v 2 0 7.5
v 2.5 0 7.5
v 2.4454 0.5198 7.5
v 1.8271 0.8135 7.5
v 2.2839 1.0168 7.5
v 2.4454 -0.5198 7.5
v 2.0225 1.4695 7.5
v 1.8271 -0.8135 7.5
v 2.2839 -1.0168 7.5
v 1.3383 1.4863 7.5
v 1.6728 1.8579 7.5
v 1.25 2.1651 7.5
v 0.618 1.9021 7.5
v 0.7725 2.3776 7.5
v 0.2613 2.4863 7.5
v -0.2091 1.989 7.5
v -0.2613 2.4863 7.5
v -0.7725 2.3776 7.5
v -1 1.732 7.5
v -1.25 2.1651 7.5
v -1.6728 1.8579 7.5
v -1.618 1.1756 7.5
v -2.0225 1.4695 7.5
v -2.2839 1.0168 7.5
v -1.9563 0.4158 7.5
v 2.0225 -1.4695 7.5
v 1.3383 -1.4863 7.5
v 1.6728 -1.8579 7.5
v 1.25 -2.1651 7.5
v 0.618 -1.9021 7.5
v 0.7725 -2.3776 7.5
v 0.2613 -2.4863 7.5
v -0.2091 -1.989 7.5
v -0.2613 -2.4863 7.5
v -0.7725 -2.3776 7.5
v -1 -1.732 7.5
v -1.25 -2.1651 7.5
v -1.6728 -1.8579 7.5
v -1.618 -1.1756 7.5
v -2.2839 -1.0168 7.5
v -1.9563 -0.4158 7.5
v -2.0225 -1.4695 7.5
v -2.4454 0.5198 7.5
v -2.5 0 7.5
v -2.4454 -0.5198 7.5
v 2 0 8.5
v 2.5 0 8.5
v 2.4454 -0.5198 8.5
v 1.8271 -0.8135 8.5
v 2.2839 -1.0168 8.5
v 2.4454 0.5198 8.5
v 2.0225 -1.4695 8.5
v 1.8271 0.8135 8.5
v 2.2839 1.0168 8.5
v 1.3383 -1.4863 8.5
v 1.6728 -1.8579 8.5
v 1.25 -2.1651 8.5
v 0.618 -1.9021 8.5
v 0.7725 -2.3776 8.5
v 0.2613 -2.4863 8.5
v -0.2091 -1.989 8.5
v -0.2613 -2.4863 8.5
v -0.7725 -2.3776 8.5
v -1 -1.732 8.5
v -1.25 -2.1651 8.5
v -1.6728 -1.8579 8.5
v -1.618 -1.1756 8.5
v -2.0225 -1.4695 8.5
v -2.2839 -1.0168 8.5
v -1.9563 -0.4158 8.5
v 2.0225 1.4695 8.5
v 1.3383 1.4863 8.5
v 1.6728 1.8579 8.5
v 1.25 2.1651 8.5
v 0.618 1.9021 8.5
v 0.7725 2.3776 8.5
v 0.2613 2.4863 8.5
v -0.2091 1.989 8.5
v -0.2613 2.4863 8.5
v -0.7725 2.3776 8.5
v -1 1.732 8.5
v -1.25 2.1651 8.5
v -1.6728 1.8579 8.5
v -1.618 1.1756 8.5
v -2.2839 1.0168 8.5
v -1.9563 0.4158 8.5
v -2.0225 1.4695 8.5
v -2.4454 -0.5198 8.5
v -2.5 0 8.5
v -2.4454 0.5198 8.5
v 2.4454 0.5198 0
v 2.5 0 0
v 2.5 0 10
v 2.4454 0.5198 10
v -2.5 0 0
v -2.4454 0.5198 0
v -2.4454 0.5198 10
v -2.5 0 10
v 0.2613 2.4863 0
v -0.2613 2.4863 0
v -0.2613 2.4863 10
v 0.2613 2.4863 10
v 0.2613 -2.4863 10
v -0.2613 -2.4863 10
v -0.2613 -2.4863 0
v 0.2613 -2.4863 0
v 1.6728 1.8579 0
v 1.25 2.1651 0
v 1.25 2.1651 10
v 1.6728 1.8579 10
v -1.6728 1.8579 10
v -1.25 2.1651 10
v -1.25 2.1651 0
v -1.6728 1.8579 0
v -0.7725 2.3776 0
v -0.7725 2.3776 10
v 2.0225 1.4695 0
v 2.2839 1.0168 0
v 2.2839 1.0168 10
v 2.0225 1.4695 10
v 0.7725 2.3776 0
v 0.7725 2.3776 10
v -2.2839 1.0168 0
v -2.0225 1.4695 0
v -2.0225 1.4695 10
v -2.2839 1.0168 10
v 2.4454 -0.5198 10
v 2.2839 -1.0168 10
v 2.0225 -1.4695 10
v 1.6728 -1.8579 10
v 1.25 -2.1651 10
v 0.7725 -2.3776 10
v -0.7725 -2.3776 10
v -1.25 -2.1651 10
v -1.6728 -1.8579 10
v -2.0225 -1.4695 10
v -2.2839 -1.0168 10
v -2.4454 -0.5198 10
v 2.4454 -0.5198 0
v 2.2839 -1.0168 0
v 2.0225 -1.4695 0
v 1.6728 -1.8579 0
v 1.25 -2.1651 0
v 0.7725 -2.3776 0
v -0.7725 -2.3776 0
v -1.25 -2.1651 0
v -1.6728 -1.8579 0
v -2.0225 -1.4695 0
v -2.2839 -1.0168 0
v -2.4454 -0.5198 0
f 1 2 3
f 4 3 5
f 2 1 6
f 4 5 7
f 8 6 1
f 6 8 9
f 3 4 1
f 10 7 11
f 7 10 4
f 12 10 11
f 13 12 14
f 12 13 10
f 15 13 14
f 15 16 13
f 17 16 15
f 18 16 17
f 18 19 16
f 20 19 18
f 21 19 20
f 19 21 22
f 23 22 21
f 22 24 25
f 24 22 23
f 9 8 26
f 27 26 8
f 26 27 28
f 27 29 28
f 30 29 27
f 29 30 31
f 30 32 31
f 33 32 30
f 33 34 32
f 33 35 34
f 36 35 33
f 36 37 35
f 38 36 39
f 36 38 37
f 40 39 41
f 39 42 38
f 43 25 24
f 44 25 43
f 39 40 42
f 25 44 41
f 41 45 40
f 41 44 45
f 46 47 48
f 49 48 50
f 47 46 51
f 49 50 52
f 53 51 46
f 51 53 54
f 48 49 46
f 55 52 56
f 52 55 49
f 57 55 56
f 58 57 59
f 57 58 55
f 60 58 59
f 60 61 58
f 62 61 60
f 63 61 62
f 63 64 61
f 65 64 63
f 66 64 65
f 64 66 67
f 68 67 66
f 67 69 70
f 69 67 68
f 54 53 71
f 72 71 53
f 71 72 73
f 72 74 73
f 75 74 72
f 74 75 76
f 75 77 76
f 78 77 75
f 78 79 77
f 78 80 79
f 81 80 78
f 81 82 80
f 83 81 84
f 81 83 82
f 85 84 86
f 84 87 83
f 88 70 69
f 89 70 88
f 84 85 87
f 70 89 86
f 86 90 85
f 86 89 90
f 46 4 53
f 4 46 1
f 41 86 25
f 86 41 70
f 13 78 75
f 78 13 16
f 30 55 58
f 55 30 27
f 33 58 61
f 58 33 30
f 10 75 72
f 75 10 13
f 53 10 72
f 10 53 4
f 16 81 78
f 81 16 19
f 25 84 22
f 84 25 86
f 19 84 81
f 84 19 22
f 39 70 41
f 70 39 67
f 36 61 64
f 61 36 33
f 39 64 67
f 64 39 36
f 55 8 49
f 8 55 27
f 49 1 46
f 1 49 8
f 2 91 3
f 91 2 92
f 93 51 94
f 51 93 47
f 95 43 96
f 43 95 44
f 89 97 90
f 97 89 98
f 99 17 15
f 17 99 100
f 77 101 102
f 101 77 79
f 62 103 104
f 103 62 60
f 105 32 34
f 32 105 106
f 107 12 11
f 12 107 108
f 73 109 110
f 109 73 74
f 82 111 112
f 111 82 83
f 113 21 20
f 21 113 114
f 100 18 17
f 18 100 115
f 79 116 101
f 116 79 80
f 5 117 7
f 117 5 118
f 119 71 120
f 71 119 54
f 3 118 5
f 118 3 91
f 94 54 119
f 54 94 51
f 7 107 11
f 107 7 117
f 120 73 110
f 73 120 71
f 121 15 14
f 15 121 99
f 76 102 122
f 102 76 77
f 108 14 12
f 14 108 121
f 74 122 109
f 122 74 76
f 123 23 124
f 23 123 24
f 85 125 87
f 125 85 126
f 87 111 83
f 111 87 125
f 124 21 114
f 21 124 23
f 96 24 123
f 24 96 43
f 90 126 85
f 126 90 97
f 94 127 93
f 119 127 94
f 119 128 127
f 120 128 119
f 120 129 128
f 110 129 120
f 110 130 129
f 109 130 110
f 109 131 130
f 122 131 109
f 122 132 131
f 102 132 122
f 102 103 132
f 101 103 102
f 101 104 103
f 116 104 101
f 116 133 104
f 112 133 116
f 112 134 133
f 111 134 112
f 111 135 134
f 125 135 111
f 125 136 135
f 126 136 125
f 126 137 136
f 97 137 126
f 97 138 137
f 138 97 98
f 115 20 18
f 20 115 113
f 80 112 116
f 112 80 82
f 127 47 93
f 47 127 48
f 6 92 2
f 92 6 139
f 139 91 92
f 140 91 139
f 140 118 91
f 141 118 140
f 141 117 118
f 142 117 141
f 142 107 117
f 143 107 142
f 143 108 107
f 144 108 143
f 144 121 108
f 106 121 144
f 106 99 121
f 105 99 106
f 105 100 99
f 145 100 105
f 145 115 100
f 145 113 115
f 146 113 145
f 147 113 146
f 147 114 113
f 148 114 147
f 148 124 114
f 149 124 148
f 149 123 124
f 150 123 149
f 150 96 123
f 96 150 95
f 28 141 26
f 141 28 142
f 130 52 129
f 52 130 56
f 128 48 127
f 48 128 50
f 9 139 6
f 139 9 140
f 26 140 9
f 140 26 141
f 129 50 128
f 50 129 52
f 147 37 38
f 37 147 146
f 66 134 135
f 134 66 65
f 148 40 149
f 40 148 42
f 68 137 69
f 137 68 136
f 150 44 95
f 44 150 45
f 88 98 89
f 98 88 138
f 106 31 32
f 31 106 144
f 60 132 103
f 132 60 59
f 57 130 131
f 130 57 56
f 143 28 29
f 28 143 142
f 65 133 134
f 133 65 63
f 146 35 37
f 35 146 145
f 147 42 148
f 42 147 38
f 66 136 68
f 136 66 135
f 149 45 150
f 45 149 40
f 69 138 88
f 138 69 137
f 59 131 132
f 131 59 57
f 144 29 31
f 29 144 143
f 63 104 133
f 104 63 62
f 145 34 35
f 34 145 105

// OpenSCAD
difference(){
    cylinder(h=10,d=5,$fn=30);
    translate([0,0,8])
        difference(){
            cylinder(h=1,d=10,$fn=15,center=true);
            cylinder(h=1,d=4,$fn=15,center=true);
    }   
    
}
